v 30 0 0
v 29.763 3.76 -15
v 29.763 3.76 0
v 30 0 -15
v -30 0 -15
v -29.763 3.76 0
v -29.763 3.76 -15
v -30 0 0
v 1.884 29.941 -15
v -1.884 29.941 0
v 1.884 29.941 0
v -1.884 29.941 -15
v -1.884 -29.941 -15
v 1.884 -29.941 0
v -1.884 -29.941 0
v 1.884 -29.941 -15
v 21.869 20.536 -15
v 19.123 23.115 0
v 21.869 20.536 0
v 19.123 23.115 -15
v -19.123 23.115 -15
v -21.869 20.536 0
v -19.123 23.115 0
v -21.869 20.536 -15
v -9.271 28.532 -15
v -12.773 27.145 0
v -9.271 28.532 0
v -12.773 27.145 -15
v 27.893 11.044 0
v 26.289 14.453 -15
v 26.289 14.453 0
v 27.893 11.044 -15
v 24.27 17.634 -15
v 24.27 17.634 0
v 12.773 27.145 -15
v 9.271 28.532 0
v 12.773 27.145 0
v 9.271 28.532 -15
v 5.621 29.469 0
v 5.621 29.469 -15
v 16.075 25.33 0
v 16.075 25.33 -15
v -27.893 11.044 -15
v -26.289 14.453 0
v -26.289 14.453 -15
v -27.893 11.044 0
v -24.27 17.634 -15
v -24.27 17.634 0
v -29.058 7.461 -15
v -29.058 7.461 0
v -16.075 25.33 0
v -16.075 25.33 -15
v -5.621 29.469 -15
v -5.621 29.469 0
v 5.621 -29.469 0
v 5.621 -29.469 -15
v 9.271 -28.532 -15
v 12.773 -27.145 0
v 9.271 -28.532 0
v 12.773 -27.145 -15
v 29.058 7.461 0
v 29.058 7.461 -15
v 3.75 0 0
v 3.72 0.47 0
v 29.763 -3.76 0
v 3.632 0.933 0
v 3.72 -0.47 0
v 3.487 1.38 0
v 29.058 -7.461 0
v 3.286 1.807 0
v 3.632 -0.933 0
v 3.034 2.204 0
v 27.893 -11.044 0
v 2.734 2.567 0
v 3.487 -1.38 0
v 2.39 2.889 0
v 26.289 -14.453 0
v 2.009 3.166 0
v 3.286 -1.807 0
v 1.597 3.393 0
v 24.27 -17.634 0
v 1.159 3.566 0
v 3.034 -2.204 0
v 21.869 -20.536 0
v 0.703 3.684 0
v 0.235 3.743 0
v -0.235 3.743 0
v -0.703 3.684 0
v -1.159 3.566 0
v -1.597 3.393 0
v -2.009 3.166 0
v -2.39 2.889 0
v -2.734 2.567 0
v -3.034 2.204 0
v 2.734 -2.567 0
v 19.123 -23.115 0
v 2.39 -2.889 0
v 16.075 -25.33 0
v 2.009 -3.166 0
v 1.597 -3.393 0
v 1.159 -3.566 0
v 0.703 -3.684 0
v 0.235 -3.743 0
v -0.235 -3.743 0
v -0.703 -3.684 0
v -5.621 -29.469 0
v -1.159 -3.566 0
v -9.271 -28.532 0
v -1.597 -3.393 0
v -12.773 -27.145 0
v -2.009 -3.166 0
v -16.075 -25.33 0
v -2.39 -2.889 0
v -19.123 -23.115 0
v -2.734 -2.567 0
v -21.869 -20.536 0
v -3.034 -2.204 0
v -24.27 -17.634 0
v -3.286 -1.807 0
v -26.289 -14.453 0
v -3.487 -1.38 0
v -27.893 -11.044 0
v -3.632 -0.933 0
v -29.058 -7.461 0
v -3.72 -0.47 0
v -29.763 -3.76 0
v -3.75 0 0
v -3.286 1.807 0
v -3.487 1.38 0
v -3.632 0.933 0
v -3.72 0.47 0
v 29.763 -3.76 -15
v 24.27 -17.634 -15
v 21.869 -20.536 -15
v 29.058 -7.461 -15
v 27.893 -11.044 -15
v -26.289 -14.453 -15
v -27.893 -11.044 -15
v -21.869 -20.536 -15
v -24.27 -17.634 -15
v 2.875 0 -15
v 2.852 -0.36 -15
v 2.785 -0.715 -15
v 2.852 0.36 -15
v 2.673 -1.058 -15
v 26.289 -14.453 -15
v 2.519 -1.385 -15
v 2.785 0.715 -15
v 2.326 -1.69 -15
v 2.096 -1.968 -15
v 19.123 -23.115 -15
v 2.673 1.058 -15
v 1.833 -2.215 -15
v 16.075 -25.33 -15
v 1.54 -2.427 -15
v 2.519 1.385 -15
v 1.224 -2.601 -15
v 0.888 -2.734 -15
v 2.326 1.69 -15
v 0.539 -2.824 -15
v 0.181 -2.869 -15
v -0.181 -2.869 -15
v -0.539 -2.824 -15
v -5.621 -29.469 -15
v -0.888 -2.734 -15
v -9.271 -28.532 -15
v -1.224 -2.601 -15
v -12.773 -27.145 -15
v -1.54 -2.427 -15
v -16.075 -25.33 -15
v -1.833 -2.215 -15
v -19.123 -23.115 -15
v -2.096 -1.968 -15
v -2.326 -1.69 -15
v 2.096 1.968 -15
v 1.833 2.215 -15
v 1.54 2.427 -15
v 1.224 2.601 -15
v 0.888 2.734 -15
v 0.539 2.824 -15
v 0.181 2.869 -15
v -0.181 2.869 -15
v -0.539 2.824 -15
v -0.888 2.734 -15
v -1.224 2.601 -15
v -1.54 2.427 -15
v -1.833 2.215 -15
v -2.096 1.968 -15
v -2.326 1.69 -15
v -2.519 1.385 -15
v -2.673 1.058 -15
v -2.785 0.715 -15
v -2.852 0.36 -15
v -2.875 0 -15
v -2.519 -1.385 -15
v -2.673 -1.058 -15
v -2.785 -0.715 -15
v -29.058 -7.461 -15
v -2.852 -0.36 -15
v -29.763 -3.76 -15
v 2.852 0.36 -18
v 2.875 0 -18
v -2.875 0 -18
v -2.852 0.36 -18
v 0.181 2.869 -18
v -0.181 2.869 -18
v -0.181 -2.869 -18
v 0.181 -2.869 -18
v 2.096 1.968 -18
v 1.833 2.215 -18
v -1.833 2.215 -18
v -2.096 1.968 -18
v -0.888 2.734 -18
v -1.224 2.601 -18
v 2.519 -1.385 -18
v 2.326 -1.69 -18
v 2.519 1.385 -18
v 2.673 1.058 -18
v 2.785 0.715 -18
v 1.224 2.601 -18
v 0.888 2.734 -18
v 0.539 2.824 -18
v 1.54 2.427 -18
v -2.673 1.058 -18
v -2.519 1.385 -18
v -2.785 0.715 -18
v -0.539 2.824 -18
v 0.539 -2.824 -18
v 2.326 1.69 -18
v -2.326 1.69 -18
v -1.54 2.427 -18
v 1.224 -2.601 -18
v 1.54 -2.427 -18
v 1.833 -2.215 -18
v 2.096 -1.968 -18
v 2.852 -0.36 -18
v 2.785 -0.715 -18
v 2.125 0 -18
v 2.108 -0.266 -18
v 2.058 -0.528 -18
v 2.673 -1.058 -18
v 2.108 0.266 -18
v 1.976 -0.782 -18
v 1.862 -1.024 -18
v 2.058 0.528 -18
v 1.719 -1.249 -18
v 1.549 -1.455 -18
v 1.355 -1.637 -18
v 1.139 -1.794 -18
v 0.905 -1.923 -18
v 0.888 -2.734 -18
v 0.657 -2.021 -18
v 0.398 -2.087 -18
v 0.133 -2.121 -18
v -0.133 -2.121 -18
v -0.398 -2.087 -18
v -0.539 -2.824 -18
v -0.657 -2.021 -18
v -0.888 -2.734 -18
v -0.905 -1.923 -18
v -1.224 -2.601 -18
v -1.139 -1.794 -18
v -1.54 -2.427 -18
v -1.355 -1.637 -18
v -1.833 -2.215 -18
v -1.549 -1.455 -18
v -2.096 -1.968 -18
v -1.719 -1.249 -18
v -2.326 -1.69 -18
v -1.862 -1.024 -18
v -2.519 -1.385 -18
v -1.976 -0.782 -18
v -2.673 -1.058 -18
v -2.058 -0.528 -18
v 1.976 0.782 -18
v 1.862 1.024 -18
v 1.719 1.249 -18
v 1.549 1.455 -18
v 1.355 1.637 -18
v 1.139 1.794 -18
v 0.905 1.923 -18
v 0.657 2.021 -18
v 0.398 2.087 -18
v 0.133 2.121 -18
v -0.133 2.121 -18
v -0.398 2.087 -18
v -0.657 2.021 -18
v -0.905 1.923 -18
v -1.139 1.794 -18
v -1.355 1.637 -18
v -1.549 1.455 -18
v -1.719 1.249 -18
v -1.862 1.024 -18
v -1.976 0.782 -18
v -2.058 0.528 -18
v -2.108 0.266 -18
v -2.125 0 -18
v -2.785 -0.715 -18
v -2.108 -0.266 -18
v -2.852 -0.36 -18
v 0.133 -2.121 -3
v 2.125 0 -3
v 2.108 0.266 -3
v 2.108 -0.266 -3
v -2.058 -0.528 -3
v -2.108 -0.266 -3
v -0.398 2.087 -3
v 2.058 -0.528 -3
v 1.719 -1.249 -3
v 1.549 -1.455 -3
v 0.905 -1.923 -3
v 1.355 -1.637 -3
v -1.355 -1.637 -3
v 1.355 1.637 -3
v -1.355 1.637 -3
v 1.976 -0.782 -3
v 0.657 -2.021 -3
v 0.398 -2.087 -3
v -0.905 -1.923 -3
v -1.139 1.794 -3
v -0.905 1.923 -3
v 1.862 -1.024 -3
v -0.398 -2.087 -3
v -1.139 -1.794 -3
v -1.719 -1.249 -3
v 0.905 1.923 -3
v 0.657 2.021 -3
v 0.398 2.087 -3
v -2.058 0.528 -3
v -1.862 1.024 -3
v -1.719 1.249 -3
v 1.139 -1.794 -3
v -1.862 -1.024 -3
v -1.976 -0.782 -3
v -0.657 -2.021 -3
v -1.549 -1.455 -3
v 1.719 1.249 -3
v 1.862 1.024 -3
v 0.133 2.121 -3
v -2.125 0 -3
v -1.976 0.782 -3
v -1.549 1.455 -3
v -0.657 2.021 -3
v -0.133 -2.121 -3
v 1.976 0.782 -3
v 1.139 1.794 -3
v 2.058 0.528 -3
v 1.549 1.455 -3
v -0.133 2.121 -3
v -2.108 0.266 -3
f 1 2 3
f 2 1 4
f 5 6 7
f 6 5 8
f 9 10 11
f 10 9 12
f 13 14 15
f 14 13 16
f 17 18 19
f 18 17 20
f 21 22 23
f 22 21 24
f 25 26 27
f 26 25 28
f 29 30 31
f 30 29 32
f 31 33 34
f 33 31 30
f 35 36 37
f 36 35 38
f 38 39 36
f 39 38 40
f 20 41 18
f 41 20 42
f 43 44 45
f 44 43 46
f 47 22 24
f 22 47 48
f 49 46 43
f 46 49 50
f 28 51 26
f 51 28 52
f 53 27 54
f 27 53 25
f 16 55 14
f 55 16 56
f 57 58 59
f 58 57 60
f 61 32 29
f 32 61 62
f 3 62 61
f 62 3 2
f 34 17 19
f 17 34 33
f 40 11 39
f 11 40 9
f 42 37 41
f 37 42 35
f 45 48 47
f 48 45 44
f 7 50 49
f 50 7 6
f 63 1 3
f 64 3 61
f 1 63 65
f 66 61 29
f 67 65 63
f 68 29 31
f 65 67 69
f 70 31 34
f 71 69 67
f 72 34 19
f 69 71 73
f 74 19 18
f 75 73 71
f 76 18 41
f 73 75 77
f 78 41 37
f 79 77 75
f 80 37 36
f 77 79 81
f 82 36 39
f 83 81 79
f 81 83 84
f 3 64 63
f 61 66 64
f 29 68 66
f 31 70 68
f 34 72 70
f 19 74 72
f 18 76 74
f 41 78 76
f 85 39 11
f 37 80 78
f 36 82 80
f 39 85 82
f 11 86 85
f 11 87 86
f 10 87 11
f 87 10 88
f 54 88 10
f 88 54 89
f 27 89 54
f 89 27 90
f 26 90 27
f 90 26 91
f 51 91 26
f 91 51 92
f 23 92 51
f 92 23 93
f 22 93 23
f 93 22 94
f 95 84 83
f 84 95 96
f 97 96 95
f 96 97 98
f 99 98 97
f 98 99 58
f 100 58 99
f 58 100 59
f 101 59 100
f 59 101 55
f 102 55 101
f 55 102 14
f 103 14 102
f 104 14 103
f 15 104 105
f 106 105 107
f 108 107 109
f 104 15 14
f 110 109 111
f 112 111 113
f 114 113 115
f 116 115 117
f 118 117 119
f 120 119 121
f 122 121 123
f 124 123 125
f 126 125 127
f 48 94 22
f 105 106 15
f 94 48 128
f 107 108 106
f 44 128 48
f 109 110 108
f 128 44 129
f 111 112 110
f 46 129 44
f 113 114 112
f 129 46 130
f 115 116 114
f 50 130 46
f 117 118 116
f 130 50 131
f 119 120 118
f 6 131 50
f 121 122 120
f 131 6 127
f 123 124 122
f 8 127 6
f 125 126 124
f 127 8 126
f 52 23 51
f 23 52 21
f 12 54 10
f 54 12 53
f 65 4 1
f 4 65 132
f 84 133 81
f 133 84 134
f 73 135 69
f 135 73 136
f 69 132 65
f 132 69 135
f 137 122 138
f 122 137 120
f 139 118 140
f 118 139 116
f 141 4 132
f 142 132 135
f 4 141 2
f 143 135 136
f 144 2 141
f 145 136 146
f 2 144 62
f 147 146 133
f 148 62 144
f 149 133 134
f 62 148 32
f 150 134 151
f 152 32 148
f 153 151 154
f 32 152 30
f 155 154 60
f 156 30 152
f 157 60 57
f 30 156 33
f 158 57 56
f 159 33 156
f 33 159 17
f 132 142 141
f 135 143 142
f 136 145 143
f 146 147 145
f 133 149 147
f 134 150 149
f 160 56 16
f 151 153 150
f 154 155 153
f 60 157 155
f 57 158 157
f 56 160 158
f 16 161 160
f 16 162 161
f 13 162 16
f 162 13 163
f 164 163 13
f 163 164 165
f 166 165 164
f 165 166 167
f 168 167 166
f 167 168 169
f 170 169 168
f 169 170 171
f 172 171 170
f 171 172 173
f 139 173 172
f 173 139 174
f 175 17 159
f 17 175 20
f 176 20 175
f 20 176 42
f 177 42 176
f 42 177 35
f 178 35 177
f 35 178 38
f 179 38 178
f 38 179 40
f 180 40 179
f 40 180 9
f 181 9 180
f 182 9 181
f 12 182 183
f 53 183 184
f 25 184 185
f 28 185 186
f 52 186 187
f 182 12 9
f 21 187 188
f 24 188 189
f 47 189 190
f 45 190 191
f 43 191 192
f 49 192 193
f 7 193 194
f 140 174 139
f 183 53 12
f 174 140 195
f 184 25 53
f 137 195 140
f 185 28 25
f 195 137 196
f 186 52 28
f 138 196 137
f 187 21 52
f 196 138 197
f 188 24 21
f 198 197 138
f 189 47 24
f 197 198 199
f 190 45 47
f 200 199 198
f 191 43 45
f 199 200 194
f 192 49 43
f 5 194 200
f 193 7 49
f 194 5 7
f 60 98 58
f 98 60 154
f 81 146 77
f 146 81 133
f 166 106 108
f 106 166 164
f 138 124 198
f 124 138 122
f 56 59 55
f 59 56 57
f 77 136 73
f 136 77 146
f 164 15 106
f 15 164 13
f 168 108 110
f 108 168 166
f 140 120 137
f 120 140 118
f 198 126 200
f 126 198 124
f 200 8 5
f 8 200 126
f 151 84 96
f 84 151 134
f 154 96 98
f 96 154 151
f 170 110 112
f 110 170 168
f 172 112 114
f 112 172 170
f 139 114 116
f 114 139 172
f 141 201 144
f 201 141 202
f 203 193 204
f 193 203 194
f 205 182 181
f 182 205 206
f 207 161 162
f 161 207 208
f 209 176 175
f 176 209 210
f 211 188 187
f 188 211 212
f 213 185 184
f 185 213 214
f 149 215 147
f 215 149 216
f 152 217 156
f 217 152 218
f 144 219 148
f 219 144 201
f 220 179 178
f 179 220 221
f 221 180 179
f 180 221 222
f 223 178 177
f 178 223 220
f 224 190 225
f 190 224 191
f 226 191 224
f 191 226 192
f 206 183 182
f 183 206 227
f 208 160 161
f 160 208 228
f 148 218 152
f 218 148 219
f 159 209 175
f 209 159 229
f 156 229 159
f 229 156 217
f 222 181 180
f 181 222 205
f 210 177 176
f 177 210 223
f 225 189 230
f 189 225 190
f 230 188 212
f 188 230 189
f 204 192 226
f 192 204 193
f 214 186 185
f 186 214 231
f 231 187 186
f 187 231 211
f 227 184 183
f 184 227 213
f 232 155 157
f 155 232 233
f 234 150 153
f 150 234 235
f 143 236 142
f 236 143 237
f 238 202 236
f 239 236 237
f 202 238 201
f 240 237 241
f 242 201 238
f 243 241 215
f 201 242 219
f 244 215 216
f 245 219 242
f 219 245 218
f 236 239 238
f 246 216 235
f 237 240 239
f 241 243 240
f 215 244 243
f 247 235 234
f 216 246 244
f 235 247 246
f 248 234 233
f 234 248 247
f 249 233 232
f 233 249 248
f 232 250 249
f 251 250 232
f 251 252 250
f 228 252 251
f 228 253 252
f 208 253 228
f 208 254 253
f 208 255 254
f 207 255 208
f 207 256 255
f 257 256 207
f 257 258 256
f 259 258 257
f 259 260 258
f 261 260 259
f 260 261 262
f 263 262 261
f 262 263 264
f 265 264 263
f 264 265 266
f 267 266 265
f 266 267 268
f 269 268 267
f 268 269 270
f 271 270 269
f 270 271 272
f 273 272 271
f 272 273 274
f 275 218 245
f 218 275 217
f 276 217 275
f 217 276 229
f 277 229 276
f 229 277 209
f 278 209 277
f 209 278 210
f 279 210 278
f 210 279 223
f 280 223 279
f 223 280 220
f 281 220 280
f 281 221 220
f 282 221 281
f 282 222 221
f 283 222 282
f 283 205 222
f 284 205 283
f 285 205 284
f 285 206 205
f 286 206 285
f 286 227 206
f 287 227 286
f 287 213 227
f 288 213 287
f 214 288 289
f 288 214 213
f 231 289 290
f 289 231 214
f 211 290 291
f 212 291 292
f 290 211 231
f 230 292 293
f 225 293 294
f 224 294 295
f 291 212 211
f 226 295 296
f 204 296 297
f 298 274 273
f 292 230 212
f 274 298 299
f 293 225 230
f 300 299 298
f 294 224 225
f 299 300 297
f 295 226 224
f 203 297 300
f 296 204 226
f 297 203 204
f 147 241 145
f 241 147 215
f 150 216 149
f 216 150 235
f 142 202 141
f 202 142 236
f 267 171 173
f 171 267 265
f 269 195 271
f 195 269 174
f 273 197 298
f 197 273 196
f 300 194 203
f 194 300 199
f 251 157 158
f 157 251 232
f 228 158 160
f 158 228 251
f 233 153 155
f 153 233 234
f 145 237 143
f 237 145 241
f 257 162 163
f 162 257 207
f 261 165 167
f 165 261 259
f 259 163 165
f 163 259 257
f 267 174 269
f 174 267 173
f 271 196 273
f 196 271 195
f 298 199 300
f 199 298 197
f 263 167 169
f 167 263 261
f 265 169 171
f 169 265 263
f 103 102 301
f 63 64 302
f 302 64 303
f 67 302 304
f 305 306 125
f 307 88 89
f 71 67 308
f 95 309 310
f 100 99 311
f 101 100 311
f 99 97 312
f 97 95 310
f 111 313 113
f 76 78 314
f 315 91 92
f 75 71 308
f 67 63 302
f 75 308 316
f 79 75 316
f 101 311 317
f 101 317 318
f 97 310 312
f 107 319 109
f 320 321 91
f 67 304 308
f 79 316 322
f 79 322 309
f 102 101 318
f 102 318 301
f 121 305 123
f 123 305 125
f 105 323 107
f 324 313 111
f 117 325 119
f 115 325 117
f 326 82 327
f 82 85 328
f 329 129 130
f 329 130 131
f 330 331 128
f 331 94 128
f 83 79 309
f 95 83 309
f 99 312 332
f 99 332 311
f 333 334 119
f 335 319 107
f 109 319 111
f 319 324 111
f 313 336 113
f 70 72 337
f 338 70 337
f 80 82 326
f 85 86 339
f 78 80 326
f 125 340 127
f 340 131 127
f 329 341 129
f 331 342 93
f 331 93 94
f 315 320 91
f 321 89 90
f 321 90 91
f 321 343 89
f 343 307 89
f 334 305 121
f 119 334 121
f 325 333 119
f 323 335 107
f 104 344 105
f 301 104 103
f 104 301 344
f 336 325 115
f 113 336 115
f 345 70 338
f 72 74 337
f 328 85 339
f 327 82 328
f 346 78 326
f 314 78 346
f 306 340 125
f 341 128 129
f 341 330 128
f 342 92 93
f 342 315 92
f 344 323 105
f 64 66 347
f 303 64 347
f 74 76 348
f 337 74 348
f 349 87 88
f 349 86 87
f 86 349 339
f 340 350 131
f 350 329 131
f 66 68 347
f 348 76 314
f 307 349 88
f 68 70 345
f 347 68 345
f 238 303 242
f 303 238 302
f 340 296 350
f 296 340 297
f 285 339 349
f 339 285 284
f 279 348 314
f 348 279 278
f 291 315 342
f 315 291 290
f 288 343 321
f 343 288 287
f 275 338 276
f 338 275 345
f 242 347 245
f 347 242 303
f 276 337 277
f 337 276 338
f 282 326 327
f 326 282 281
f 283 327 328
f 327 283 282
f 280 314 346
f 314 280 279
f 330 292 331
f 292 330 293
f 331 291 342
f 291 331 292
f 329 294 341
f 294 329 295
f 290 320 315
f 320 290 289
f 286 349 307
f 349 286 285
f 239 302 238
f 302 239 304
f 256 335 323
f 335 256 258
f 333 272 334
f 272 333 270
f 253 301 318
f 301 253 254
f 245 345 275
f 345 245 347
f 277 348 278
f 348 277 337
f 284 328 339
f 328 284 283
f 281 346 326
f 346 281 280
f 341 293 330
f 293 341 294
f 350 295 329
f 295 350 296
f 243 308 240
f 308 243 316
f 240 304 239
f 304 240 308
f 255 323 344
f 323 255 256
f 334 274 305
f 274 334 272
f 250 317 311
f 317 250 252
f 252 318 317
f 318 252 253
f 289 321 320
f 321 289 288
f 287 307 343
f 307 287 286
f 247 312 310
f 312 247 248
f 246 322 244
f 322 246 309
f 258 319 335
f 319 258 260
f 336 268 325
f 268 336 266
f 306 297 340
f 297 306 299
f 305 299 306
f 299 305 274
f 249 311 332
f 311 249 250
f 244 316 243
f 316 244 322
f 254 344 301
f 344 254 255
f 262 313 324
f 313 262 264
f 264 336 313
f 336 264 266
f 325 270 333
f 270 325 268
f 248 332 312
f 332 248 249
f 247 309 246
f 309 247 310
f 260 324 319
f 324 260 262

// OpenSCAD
$fn = 50;

difference() {
	union() {
		translate(v = [0, 0, -15.0]) {
			cylinder(h = 15, r = 30.0);
		}
		#translate(v = [0, 0, -18.0]) {
			cylinder(h = 18, r = 2.875);
		}
	}
	union() {
		translate(v = [0, 0, 0]) {
			rotate(a = [0, 0, 0]) {
				difference() {
					union() {
						translate(v = [0, 0, -18.0]) {
							cylinder(h = 18, r = 2.0);
						}
						translate(v = [0, 0, -3]) {
							cylinder(h = 3, r1 = 2.125, r2 = 3.75);
						}
						translate(v = [0, 0, -18.0]) {
							cylinder(h = 18, r = 2.125);
						}
						translate(v = [0, 0, -18.0]) {
							cylinder(h = 18, r = 2.0);
						}
					}
					union();
				}
			}
		}
	}
}
